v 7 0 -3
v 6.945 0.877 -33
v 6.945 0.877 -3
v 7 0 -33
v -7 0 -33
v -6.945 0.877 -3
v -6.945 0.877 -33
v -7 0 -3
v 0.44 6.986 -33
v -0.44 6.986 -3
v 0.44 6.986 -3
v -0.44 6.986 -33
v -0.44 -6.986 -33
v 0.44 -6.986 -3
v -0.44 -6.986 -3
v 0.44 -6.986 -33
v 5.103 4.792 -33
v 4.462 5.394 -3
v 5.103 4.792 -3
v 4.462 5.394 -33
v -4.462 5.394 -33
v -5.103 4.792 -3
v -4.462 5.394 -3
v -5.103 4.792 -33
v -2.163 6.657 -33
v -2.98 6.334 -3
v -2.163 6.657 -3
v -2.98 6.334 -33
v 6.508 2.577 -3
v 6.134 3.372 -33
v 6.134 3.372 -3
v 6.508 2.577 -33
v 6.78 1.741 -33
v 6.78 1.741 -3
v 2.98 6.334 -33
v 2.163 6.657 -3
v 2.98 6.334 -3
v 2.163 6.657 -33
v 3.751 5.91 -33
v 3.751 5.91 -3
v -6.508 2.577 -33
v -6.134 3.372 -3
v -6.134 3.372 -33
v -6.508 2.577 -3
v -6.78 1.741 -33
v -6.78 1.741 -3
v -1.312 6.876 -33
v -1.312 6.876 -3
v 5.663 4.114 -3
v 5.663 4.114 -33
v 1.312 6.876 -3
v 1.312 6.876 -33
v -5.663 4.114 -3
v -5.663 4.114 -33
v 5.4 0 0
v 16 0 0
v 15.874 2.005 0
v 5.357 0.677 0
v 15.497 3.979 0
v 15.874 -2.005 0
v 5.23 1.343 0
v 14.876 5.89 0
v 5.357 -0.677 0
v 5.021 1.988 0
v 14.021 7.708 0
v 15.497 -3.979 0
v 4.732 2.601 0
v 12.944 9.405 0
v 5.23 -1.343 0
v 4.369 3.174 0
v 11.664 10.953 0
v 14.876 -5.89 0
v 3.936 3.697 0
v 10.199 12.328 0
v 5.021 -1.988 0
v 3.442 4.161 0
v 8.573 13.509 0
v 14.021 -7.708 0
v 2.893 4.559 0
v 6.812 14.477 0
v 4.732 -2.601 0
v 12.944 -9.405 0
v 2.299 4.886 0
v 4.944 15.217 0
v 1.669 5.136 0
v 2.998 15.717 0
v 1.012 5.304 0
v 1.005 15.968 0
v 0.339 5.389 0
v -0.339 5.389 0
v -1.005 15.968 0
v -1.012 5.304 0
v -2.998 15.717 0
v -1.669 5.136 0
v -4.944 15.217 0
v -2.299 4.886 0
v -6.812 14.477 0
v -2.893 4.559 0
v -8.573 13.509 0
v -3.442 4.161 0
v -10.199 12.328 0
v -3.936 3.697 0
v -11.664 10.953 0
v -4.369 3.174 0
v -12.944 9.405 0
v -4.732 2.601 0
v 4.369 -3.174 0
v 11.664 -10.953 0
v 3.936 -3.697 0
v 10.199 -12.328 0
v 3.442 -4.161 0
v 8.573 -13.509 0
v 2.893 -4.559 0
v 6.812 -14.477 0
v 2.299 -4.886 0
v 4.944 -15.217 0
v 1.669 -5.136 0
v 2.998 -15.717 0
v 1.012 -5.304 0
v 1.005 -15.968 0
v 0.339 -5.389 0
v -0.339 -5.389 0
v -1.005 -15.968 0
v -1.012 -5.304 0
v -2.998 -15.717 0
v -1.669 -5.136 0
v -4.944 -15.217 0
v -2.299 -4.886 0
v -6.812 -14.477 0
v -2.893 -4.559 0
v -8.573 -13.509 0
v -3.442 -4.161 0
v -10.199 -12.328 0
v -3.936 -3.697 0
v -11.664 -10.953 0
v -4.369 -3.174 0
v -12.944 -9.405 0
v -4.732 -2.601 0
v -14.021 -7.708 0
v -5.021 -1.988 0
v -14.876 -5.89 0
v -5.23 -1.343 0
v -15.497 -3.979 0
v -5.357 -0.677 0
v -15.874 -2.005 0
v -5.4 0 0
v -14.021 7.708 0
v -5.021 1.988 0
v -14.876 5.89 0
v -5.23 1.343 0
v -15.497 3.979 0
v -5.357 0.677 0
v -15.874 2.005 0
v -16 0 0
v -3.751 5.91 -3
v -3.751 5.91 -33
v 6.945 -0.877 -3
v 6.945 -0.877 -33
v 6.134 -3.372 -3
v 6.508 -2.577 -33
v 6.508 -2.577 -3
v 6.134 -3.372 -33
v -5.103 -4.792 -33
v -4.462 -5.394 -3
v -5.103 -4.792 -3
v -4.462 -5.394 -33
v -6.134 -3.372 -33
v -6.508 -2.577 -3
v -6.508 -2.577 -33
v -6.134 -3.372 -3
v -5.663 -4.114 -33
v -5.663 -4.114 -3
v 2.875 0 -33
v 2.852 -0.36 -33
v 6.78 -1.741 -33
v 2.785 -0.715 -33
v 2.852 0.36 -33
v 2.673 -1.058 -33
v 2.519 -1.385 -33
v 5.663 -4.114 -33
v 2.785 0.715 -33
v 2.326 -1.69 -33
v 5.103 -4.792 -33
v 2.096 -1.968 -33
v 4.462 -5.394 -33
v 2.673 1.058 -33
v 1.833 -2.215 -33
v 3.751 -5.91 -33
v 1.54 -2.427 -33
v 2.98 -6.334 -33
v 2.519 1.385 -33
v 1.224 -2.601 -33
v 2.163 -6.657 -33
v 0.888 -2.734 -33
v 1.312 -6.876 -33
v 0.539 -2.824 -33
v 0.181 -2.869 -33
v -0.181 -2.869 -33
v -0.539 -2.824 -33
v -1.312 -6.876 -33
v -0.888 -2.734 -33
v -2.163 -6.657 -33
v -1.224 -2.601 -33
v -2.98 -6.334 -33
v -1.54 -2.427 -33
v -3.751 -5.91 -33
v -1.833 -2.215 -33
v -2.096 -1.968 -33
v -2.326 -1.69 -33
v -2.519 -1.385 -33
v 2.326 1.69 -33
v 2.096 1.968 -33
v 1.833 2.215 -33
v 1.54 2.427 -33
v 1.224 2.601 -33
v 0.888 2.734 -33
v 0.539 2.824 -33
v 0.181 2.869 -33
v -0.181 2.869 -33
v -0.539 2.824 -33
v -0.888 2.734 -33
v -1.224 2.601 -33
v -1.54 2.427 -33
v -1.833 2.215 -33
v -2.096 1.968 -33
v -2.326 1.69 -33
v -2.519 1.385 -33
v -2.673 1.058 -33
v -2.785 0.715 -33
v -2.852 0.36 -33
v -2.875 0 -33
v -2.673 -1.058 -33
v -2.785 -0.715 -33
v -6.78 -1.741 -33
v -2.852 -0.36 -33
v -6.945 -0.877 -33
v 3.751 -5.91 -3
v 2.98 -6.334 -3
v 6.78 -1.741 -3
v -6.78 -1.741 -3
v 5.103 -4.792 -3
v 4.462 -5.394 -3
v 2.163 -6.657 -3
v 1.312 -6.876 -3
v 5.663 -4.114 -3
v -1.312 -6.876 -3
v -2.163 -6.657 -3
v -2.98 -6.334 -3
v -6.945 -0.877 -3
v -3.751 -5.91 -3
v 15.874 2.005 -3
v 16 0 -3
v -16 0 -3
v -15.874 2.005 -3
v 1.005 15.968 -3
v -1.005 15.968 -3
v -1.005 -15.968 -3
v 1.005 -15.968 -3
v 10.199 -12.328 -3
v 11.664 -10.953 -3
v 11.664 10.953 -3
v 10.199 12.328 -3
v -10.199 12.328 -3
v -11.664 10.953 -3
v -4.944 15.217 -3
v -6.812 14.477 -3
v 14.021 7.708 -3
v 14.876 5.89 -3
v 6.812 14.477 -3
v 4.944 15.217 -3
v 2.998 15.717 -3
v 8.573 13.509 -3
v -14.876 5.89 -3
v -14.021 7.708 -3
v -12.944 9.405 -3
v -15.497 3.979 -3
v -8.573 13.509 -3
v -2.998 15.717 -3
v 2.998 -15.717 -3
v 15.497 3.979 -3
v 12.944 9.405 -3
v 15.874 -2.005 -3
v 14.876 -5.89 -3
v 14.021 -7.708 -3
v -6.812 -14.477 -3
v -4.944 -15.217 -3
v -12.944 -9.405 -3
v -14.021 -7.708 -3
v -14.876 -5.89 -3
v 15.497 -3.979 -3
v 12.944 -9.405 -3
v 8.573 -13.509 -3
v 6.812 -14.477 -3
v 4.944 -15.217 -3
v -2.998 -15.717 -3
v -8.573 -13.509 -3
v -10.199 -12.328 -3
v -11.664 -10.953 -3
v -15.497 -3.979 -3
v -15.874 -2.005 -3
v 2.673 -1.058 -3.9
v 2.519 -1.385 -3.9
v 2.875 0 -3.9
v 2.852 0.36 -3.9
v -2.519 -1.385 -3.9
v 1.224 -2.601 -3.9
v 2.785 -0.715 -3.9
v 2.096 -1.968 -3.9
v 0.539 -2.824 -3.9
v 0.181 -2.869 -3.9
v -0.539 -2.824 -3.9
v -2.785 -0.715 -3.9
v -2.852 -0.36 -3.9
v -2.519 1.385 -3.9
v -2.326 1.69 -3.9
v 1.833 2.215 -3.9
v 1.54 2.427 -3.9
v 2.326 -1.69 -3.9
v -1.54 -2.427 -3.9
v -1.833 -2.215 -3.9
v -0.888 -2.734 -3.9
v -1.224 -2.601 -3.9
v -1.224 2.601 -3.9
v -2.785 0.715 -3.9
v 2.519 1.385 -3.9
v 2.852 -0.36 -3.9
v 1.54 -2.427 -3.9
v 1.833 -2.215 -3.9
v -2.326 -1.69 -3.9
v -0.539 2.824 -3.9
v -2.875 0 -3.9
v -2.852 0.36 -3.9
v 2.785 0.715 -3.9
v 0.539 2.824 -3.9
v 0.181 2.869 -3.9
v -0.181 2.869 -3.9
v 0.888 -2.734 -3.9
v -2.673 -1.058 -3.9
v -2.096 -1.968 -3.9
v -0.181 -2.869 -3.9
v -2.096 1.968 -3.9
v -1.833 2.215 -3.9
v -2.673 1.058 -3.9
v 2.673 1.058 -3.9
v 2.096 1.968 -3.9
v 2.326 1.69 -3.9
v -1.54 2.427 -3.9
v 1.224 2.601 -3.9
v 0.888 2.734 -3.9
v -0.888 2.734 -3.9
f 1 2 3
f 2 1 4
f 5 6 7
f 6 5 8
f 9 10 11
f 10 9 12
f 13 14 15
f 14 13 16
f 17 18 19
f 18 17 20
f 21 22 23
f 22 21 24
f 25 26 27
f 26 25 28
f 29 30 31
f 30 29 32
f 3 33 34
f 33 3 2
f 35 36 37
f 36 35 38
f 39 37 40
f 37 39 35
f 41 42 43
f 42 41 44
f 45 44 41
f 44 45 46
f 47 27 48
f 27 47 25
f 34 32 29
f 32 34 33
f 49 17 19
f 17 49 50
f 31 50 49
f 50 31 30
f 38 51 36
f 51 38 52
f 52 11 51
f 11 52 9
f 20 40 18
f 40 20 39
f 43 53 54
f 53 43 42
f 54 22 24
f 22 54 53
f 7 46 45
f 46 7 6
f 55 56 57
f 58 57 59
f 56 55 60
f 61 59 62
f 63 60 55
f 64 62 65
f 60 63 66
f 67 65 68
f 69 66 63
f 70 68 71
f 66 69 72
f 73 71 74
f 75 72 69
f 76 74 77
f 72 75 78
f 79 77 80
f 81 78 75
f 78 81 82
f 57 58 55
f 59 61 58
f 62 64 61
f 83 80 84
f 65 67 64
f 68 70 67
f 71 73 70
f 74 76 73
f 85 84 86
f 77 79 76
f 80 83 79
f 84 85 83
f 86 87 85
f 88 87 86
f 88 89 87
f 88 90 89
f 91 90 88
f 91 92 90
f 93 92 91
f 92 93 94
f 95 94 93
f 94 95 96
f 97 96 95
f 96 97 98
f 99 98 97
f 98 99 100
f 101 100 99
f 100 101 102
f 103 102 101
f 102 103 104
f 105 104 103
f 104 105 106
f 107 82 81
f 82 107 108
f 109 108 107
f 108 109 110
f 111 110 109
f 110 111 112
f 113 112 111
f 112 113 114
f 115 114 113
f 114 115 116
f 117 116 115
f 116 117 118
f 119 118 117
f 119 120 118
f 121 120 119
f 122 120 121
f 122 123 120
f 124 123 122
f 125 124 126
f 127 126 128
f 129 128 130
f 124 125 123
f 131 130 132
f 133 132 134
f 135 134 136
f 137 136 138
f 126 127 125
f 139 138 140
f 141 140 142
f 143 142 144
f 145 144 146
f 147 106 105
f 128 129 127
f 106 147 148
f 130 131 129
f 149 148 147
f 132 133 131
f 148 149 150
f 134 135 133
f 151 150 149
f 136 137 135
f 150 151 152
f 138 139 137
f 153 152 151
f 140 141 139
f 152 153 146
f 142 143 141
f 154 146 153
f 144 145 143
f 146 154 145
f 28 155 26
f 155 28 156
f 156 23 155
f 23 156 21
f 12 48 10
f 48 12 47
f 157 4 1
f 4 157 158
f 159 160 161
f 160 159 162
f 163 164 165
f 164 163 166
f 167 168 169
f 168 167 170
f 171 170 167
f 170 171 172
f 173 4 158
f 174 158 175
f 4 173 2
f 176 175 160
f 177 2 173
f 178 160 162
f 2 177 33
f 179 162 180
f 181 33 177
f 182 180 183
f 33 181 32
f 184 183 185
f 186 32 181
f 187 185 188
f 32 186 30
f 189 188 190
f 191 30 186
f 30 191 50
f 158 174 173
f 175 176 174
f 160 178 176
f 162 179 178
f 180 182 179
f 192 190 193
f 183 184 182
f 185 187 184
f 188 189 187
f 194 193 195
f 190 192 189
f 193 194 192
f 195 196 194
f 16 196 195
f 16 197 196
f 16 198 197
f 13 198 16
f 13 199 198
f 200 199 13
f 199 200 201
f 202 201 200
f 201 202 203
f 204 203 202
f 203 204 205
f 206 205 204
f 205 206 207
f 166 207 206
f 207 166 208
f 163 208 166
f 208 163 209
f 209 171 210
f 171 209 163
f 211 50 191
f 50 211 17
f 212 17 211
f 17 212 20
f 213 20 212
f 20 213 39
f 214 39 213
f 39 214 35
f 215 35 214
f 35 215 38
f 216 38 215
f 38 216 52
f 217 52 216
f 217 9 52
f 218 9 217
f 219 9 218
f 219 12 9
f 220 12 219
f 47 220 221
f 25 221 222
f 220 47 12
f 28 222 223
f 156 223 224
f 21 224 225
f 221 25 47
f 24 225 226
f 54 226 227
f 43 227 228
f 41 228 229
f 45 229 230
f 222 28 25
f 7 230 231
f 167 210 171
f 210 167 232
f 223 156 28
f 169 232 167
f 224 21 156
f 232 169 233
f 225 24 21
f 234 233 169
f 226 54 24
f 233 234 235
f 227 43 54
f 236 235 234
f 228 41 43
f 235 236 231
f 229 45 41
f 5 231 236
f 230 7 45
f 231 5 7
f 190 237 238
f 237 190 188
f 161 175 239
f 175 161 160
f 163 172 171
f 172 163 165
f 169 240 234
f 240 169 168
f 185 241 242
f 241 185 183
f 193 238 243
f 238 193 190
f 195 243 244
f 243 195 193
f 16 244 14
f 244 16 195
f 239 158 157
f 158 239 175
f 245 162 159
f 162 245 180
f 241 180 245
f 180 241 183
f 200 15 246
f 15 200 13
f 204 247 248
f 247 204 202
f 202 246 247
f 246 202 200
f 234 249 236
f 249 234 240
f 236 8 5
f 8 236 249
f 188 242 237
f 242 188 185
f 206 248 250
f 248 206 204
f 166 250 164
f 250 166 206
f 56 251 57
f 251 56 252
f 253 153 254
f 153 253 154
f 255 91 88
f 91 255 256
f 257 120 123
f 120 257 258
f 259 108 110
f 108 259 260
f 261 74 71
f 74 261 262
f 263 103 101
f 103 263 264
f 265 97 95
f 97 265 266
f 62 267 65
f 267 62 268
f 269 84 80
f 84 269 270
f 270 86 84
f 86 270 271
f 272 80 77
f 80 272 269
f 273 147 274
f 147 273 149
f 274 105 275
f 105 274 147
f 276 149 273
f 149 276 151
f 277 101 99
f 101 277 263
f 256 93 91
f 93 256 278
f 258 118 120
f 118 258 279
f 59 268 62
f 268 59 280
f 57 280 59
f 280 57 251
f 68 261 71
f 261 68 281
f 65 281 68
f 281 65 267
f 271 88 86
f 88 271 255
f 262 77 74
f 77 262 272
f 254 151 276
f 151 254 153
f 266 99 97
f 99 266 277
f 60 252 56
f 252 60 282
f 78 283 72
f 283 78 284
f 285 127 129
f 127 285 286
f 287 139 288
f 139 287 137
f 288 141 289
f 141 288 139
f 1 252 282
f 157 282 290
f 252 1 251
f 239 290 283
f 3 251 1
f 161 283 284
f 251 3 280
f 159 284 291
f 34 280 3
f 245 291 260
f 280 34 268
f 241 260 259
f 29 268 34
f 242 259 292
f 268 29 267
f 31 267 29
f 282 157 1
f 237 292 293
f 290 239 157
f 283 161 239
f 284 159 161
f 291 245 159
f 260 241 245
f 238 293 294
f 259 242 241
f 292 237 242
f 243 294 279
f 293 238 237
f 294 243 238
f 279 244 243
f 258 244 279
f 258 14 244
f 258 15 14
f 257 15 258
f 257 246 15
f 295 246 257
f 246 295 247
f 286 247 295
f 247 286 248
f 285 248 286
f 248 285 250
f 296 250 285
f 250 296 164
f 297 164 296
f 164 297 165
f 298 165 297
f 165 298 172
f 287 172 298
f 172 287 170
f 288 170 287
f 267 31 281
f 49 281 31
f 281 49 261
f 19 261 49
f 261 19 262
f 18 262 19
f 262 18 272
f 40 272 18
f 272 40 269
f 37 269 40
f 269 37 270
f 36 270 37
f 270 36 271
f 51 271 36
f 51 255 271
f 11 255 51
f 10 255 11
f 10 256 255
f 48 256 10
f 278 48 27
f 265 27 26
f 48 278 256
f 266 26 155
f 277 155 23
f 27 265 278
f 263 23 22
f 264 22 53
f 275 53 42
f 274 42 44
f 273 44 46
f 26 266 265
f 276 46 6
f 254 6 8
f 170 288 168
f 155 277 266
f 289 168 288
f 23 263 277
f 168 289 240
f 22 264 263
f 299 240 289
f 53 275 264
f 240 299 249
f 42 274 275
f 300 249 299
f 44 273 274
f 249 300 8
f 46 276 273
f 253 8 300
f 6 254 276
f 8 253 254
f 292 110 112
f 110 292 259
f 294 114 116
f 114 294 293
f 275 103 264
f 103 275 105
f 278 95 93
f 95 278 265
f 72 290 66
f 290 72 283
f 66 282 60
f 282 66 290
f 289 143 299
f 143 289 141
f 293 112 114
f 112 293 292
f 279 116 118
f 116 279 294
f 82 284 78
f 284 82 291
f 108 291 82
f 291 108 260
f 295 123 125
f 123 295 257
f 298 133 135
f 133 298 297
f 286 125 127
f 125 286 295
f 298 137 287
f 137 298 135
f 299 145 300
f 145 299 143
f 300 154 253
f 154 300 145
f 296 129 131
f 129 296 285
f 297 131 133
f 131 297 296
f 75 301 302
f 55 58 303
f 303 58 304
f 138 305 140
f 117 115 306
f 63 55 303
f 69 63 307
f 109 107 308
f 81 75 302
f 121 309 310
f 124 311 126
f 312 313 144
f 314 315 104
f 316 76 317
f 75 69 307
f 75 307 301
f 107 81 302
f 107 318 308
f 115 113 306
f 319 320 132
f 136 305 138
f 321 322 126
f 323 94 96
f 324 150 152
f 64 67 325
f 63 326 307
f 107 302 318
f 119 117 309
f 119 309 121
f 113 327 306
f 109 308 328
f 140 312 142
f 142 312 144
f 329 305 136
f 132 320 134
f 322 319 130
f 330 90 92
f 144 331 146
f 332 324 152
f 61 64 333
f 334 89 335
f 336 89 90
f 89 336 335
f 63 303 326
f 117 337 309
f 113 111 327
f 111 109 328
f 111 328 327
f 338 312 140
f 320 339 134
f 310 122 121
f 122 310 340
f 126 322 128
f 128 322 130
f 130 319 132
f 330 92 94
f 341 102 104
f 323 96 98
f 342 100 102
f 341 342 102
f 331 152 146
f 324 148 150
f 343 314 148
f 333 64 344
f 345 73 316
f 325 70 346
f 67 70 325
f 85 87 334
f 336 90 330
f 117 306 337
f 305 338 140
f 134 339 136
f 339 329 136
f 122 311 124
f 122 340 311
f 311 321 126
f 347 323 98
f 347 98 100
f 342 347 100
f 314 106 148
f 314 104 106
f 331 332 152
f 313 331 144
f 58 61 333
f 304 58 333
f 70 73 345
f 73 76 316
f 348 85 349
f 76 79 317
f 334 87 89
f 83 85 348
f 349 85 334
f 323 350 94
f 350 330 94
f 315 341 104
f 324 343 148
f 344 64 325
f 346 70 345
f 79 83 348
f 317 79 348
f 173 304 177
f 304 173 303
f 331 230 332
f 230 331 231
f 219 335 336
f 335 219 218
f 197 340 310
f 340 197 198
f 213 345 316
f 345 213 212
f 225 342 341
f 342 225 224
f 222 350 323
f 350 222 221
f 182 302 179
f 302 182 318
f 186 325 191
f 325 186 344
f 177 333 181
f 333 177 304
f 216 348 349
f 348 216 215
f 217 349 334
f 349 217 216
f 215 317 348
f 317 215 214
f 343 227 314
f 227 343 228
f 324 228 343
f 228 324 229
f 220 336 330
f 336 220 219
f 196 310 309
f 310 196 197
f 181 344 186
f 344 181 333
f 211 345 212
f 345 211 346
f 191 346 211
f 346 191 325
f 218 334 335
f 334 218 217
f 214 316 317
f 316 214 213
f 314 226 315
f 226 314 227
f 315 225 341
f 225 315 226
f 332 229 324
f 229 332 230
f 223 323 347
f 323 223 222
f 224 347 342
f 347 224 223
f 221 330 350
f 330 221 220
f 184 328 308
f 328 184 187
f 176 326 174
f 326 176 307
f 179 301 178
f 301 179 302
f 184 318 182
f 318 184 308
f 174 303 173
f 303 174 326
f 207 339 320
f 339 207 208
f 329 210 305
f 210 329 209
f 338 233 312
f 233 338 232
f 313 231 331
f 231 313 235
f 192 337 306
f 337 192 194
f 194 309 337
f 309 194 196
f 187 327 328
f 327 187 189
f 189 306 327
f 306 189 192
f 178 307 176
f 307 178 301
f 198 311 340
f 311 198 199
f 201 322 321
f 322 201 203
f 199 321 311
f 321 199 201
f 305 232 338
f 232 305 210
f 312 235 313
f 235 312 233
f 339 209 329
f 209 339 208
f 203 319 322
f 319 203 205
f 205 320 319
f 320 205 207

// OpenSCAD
$fn = 50;


difference() {
	union() {
		translate(v = [0, 0, -33.0000000000]) {
			cylinder(h = 33, r = 7.0000000000);
		}
		translate(v = [0, 0, -3.0000000000]) {
			cylinder(h = 3, r = 16.0000000000);
		}
	}
	union() {
		translate(v = [0, 0, 0]) {
			rotate(a = [0, 0, 0]) {
				difference() {
					union() {
						#translate(v = [0, 0, -33.0000000000]) {
							cylinder(h = 33, r = 2.6000000000);
						}
						#translate(v = [0, 0, -3.9000000000]) {
							cylinder(h = 3.9000000000, r1 = 2.8750000000, r2 = 5.4000000000);
						}
						#translate(v = [0, 0, -33.0000000000]) {
							cylinder(h = 33, r = 2.8750000000);
						}
						#translate(v = [0, 0, -33.0000000000]) {
							cylinder(h = 33, r = 2.6000000000);
						}
					}
					union();
				}
			}
		}
	}
}
